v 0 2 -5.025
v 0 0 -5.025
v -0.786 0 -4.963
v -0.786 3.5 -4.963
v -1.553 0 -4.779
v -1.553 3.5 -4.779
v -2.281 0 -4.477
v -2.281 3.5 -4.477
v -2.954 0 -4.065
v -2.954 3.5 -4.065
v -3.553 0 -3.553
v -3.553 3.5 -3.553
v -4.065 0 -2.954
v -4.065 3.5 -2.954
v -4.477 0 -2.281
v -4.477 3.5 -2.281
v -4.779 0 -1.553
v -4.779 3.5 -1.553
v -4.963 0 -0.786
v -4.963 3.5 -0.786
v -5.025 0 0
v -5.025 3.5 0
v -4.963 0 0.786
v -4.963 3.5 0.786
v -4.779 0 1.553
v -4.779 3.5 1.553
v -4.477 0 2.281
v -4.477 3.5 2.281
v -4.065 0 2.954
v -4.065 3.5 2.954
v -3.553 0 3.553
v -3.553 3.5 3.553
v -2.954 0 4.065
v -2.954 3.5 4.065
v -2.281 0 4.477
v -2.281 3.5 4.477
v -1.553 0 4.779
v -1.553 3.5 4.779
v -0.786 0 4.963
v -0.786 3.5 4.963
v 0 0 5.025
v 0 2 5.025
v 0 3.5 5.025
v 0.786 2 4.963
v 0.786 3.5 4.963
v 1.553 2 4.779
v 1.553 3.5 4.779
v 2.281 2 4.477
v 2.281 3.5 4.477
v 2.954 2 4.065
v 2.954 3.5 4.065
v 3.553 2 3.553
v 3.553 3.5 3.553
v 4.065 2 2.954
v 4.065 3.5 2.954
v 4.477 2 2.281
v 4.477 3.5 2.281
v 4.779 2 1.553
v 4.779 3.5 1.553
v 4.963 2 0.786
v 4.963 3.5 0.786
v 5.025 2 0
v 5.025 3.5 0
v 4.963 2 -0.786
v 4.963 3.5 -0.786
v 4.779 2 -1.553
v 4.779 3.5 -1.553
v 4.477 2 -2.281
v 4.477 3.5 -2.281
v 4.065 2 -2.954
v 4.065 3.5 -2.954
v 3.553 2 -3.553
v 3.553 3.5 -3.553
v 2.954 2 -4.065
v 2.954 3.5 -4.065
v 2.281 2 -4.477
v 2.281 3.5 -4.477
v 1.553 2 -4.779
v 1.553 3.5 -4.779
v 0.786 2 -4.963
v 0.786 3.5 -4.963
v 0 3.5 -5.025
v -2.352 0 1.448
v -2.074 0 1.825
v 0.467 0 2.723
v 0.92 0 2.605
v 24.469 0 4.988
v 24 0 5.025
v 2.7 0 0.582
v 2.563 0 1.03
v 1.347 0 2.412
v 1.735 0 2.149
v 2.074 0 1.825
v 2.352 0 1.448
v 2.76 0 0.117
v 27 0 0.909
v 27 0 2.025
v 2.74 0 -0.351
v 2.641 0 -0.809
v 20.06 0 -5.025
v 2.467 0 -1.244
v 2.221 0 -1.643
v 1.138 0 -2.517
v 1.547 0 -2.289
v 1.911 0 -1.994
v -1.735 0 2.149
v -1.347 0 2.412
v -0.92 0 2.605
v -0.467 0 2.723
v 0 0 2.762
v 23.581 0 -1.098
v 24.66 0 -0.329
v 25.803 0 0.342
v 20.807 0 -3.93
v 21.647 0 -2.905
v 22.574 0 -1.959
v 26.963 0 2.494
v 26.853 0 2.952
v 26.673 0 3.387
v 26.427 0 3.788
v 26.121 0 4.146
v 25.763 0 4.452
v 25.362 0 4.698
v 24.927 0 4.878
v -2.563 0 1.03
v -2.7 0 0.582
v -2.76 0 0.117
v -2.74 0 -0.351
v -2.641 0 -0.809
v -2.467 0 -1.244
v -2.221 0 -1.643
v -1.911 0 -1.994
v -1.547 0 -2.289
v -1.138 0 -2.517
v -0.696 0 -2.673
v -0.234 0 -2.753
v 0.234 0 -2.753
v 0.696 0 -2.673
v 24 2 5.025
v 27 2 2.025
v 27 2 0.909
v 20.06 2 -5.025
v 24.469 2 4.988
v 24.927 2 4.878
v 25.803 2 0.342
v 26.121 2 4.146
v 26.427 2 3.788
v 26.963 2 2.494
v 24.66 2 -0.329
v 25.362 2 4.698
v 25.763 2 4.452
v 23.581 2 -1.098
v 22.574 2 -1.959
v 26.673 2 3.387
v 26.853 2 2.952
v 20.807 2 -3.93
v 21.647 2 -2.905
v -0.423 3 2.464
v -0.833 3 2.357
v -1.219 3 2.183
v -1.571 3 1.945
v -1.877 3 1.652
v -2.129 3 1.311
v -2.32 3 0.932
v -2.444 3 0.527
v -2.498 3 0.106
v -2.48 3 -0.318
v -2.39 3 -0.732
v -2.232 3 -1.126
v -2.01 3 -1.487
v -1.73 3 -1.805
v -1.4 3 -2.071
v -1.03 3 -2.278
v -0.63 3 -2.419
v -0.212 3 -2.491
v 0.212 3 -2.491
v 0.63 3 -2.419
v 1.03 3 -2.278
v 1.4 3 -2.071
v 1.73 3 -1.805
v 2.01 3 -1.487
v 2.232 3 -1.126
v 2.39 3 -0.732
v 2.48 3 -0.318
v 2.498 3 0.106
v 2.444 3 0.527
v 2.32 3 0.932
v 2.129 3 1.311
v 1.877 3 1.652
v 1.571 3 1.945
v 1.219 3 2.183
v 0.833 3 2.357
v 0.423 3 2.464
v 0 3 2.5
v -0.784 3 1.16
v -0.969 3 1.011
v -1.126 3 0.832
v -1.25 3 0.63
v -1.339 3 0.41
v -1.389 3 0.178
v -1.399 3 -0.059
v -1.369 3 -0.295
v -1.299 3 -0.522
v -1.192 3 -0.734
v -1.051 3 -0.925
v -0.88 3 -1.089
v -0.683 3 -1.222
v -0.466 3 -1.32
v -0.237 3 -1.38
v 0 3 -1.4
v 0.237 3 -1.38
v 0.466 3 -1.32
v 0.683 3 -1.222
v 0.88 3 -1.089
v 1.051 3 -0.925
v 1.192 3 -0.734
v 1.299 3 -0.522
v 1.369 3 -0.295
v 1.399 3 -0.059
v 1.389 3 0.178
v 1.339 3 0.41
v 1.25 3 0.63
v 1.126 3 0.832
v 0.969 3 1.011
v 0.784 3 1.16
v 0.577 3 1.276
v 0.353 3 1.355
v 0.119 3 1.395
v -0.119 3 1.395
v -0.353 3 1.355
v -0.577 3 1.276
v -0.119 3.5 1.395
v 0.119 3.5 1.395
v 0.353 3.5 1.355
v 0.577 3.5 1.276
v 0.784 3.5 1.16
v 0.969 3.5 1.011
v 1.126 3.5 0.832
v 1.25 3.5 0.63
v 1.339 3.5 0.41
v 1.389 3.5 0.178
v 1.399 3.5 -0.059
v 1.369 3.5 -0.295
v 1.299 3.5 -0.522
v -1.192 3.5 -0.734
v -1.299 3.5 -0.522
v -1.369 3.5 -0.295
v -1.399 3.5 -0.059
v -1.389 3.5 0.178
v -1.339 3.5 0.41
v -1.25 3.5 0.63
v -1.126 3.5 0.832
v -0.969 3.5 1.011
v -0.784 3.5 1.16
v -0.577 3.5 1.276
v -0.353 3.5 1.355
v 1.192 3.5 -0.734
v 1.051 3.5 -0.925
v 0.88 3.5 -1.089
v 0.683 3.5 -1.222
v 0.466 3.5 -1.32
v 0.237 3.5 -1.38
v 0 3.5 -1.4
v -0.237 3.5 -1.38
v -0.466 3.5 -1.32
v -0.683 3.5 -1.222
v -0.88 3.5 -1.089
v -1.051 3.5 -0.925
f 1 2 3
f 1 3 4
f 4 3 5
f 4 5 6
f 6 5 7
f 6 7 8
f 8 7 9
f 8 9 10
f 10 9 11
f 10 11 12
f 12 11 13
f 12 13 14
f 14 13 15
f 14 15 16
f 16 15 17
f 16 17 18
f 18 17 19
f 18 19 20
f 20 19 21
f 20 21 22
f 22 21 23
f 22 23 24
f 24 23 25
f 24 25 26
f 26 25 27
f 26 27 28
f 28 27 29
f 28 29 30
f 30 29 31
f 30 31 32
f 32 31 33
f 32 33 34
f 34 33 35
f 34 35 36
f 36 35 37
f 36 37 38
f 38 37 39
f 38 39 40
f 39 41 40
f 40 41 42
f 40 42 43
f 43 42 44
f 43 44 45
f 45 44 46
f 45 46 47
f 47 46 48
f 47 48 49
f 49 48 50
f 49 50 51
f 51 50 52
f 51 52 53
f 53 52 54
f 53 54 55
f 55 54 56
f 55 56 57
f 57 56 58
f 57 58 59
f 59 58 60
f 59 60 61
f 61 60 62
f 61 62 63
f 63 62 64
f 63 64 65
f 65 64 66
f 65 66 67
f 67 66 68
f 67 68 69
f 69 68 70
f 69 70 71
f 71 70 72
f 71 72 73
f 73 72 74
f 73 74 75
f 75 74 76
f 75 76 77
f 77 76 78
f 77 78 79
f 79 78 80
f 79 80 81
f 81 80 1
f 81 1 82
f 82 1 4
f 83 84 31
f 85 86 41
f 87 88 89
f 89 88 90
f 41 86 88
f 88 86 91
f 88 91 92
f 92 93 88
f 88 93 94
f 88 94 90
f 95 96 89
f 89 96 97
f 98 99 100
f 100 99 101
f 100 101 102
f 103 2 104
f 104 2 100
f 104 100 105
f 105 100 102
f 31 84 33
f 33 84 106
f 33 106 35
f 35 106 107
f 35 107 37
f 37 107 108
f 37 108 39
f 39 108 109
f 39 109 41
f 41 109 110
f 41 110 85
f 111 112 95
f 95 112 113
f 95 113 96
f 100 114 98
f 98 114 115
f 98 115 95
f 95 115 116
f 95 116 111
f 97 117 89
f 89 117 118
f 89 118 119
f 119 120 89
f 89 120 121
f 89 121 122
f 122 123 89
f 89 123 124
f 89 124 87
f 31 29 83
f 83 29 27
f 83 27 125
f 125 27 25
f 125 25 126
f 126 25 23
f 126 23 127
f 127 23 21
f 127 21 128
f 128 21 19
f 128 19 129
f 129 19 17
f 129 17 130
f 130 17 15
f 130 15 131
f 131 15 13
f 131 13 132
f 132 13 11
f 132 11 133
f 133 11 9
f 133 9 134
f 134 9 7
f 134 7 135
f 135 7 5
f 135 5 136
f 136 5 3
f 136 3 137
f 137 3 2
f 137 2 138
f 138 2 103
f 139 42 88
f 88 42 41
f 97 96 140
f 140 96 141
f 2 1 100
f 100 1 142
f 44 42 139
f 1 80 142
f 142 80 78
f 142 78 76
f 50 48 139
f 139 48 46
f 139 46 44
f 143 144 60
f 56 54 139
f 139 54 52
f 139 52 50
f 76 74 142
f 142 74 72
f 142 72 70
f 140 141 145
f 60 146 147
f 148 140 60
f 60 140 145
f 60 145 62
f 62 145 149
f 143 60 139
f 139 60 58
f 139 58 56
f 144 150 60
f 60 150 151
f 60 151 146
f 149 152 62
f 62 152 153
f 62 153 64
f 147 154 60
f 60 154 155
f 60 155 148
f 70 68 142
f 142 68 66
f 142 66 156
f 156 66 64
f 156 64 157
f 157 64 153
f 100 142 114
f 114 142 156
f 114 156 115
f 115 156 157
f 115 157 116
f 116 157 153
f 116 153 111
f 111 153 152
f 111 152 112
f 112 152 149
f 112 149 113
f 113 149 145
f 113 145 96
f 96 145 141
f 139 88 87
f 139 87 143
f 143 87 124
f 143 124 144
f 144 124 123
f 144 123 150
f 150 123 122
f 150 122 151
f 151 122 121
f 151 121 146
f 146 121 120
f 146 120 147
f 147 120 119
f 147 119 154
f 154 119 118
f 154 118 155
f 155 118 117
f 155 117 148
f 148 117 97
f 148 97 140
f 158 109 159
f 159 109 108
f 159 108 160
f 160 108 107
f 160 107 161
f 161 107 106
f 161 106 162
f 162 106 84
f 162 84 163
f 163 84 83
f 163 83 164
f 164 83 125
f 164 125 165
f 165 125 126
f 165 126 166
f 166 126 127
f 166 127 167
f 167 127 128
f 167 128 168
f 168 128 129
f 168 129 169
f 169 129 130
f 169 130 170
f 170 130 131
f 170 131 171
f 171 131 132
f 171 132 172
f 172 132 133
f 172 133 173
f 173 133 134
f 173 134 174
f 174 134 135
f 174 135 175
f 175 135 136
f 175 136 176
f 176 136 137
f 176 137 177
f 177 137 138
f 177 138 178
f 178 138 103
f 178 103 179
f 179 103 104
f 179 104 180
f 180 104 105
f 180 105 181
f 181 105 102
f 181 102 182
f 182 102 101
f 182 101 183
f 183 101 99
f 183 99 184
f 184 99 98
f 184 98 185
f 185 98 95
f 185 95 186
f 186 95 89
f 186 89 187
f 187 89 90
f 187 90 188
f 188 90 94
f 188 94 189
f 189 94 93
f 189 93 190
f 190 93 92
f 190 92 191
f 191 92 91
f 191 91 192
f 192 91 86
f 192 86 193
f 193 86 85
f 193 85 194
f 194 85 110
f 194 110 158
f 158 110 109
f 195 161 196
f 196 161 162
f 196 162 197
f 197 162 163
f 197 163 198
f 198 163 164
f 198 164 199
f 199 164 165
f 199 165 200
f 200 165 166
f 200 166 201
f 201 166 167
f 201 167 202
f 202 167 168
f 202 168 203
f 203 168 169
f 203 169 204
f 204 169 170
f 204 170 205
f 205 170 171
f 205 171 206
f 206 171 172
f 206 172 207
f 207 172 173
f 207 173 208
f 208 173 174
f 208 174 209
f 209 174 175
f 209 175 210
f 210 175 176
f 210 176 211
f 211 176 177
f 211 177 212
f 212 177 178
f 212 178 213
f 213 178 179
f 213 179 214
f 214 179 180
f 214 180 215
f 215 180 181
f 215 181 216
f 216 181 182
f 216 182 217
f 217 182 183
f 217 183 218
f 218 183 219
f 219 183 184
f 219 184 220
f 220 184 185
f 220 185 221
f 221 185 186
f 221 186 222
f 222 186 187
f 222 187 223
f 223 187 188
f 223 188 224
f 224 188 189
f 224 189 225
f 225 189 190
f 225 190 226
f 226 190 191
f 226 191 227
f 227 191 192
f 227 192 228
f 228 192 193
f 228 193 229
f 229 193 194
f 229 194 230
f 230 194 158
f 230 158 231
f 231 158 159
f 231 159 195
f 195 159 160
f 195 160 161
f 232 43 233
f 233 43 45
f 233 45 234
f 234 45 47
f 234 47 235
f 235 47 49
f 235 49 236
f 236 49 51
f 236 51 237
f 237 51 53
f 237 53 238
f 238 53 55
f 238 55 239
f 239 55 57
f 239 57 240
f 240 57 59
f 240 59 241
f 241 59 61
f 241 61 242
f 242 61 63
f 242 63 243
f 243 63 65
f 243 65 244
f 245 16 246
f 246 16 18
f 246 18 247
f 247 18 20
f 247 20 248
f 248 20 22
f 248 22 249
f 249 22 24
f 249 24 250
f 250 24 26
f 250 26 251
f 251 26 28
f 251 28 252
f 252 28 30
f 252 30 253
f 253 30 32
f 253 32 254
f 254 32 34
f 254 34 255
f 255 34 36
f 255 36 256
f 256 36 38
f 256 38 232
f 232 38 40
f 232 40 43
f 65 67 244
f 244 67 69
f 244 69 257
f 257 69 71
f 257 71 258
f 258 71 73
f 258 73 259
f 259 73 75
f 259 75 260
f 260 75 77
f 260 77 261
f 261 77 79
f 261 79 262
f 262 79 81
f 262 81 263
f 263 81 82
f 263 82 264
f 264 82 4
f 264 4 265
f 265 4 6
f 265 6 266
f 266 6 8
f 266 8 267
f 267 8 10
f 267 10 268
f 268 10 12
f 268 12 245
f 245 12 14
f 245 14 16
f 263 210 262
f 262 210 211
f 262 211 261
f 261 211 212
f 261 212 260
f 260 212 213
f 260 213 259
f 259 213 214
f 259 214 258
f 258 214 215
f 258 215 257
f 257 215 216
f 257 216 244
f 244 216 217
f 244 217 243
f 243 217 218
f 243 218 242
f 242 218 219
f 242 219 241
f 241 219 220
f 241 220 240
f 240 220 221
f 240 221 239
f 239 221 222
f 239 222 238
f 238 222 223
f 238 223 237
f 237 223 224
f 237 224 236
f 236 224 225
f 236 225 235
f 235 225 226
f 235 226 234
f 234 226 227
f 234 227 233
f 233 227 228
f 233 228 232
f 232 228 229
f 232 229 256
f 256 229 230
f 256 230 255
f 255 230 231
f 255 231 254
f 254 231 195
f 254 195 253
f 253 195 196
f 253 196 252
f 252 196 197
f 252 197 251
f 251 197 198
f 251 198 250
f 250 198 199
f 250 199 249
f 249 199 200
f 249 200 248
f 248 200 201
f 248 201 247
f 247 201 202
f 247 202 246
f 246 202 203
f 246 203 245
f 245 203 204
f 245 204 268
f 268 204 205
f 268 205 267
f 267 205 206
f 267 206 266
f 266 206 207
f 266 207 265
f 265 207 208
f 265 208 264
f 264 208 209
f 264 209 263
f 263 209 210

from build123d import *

# Parameters (mm, degrees)
SKETCH1_R           = 5.025
SKETCH1_R_2         = 2.025
BOSS_EXTRUDE1_DEPTH = 3
SKETCH2_W           = 27
SKETCH2_H           = 10.05
BOSS_EXTRUDE2_DEPTH = 2
SKETCH3_R           = 15
CUT_EXTRUDE1_DEPTH  = 2
FILLET1_R           = 3
SKETCH4_R           = 2.5
CUT_EXTRUDE2_DEPTH  = 10
CUT_EXTRUDE2_DRAFT  = 5
SKETCH5_R           = 5.025
BOSS_EXTRUDE3_DEPTH = 0.5
SKETCH6_R           = 1.4
CUT_EXTRUDE3_DEPTH  = 0.5


with BuildPart() as part:
    # Sketch1 → Boss-Extrude1 (new body)
    with BuildSketch(Plane(origin=(0, 0, 0), x_dir=(1, 0, 0), z_dir=(0, 1, 0))):
        with Locations(Location((0, 0, 0), (0, 0, 270))):
            Circle(SKETCH1_R)
        with Locations(Location((0, 0, 0), (0, 0, 270))):
            Circle(SKETCH1_R_2, mode=Mode.SUBTRACT)
    extrude(amount=BOSS_EXTRUDE1_DEPTH)

    # Sketch2 → Boss-Extrude2 (add)
    with BuildSketch(Plane.XZ):
        with Locations((13.5, 0)):
            Rectangle(SKETCH2_W, SKETCH2_H)
    extrude(amount=-BOSS_EXTRUDE2_DEPTH)

    # Sketch3 → Cut-Extrude1 (cut)
    with BuildSketch(Plane(origin=(0, 2, 0), x_dir=(1, 0, 0), z_dir=(0, 1, 0))):
        with Locations((32.816228029, 12.917418084)):
            Circle(SKETCH3_R)
    extrude(amount=-CUT_EXTRUDE1_DEPTH, mode=Mode.SUBTRACT)

    # Fillet1
    fillet1_edges = [part.edges().sort_by_distance(p)[0] for p in [
        (27, 1, 5.025),
    ]]
    fillet(fillet1_edges, radius=FILLET1_R)


with BuildPart() as cut_extrude2_tool:
    # Sketch4 → Cut-Extrude2 (with draft: the straight prism first)
    with BuildSketch(Plane(origin=(0, 3, 0), x_dir=(1, 0, 0), z_dir=(0, 1, 0))):
        Circle(SKETCH4_R)
    extrude(amount=-CUT_EXTRUDE2_DEPTH)
    # Cut-Extrude2: the draft: its side faces are tilted about the plane it starts from
    cut_extrude2_sides = [cut_extrude2_tool.faces().sort_by_distance(p)[0] for p in [
        (-2.5, -2, 0),
    ]]
    draft(cut_extrude2_sides, Plane(origin=(0, 3, 0), x_dir=(1, 0, 0), z_dir=(0, 1, 0)), CUT_EXTRUDE2_DRAFT)


with BuildPart() as part_1:
    add(part.part)

    # Cut-Extrude2: cut by cut_extrude2_tool
    add(cut_extrude2_tool.part, mode=Mode.SUBTRACT)

    # Sketch5 → Boss-Extrude3 (add)
    with BuildSketch(Plane(origin=(0, 3, 0), x_dir=(1, 0, 0), z_dir=(0, 1, 0))):
        with Locations(Location((0, 0, 0), (0, 0, 270))):
            Circle(SKETCH5_R)
    extrude(amount=BOSS_EXTRUDE3_DEPTH)

    # Sketch6 → Cut-Extrude3 (cut)
    with BuildSketch(Plane.XZ.offset(-3)):
        with Locations(Location((0, 0, 0), (0, 0, 270))):
            Circle(SKETCH6_R)
    extrude(amount=-CUT_EXTRUDE3_DEPTH, mode=Mode.SUBTRACT)


solid = part_1.part
